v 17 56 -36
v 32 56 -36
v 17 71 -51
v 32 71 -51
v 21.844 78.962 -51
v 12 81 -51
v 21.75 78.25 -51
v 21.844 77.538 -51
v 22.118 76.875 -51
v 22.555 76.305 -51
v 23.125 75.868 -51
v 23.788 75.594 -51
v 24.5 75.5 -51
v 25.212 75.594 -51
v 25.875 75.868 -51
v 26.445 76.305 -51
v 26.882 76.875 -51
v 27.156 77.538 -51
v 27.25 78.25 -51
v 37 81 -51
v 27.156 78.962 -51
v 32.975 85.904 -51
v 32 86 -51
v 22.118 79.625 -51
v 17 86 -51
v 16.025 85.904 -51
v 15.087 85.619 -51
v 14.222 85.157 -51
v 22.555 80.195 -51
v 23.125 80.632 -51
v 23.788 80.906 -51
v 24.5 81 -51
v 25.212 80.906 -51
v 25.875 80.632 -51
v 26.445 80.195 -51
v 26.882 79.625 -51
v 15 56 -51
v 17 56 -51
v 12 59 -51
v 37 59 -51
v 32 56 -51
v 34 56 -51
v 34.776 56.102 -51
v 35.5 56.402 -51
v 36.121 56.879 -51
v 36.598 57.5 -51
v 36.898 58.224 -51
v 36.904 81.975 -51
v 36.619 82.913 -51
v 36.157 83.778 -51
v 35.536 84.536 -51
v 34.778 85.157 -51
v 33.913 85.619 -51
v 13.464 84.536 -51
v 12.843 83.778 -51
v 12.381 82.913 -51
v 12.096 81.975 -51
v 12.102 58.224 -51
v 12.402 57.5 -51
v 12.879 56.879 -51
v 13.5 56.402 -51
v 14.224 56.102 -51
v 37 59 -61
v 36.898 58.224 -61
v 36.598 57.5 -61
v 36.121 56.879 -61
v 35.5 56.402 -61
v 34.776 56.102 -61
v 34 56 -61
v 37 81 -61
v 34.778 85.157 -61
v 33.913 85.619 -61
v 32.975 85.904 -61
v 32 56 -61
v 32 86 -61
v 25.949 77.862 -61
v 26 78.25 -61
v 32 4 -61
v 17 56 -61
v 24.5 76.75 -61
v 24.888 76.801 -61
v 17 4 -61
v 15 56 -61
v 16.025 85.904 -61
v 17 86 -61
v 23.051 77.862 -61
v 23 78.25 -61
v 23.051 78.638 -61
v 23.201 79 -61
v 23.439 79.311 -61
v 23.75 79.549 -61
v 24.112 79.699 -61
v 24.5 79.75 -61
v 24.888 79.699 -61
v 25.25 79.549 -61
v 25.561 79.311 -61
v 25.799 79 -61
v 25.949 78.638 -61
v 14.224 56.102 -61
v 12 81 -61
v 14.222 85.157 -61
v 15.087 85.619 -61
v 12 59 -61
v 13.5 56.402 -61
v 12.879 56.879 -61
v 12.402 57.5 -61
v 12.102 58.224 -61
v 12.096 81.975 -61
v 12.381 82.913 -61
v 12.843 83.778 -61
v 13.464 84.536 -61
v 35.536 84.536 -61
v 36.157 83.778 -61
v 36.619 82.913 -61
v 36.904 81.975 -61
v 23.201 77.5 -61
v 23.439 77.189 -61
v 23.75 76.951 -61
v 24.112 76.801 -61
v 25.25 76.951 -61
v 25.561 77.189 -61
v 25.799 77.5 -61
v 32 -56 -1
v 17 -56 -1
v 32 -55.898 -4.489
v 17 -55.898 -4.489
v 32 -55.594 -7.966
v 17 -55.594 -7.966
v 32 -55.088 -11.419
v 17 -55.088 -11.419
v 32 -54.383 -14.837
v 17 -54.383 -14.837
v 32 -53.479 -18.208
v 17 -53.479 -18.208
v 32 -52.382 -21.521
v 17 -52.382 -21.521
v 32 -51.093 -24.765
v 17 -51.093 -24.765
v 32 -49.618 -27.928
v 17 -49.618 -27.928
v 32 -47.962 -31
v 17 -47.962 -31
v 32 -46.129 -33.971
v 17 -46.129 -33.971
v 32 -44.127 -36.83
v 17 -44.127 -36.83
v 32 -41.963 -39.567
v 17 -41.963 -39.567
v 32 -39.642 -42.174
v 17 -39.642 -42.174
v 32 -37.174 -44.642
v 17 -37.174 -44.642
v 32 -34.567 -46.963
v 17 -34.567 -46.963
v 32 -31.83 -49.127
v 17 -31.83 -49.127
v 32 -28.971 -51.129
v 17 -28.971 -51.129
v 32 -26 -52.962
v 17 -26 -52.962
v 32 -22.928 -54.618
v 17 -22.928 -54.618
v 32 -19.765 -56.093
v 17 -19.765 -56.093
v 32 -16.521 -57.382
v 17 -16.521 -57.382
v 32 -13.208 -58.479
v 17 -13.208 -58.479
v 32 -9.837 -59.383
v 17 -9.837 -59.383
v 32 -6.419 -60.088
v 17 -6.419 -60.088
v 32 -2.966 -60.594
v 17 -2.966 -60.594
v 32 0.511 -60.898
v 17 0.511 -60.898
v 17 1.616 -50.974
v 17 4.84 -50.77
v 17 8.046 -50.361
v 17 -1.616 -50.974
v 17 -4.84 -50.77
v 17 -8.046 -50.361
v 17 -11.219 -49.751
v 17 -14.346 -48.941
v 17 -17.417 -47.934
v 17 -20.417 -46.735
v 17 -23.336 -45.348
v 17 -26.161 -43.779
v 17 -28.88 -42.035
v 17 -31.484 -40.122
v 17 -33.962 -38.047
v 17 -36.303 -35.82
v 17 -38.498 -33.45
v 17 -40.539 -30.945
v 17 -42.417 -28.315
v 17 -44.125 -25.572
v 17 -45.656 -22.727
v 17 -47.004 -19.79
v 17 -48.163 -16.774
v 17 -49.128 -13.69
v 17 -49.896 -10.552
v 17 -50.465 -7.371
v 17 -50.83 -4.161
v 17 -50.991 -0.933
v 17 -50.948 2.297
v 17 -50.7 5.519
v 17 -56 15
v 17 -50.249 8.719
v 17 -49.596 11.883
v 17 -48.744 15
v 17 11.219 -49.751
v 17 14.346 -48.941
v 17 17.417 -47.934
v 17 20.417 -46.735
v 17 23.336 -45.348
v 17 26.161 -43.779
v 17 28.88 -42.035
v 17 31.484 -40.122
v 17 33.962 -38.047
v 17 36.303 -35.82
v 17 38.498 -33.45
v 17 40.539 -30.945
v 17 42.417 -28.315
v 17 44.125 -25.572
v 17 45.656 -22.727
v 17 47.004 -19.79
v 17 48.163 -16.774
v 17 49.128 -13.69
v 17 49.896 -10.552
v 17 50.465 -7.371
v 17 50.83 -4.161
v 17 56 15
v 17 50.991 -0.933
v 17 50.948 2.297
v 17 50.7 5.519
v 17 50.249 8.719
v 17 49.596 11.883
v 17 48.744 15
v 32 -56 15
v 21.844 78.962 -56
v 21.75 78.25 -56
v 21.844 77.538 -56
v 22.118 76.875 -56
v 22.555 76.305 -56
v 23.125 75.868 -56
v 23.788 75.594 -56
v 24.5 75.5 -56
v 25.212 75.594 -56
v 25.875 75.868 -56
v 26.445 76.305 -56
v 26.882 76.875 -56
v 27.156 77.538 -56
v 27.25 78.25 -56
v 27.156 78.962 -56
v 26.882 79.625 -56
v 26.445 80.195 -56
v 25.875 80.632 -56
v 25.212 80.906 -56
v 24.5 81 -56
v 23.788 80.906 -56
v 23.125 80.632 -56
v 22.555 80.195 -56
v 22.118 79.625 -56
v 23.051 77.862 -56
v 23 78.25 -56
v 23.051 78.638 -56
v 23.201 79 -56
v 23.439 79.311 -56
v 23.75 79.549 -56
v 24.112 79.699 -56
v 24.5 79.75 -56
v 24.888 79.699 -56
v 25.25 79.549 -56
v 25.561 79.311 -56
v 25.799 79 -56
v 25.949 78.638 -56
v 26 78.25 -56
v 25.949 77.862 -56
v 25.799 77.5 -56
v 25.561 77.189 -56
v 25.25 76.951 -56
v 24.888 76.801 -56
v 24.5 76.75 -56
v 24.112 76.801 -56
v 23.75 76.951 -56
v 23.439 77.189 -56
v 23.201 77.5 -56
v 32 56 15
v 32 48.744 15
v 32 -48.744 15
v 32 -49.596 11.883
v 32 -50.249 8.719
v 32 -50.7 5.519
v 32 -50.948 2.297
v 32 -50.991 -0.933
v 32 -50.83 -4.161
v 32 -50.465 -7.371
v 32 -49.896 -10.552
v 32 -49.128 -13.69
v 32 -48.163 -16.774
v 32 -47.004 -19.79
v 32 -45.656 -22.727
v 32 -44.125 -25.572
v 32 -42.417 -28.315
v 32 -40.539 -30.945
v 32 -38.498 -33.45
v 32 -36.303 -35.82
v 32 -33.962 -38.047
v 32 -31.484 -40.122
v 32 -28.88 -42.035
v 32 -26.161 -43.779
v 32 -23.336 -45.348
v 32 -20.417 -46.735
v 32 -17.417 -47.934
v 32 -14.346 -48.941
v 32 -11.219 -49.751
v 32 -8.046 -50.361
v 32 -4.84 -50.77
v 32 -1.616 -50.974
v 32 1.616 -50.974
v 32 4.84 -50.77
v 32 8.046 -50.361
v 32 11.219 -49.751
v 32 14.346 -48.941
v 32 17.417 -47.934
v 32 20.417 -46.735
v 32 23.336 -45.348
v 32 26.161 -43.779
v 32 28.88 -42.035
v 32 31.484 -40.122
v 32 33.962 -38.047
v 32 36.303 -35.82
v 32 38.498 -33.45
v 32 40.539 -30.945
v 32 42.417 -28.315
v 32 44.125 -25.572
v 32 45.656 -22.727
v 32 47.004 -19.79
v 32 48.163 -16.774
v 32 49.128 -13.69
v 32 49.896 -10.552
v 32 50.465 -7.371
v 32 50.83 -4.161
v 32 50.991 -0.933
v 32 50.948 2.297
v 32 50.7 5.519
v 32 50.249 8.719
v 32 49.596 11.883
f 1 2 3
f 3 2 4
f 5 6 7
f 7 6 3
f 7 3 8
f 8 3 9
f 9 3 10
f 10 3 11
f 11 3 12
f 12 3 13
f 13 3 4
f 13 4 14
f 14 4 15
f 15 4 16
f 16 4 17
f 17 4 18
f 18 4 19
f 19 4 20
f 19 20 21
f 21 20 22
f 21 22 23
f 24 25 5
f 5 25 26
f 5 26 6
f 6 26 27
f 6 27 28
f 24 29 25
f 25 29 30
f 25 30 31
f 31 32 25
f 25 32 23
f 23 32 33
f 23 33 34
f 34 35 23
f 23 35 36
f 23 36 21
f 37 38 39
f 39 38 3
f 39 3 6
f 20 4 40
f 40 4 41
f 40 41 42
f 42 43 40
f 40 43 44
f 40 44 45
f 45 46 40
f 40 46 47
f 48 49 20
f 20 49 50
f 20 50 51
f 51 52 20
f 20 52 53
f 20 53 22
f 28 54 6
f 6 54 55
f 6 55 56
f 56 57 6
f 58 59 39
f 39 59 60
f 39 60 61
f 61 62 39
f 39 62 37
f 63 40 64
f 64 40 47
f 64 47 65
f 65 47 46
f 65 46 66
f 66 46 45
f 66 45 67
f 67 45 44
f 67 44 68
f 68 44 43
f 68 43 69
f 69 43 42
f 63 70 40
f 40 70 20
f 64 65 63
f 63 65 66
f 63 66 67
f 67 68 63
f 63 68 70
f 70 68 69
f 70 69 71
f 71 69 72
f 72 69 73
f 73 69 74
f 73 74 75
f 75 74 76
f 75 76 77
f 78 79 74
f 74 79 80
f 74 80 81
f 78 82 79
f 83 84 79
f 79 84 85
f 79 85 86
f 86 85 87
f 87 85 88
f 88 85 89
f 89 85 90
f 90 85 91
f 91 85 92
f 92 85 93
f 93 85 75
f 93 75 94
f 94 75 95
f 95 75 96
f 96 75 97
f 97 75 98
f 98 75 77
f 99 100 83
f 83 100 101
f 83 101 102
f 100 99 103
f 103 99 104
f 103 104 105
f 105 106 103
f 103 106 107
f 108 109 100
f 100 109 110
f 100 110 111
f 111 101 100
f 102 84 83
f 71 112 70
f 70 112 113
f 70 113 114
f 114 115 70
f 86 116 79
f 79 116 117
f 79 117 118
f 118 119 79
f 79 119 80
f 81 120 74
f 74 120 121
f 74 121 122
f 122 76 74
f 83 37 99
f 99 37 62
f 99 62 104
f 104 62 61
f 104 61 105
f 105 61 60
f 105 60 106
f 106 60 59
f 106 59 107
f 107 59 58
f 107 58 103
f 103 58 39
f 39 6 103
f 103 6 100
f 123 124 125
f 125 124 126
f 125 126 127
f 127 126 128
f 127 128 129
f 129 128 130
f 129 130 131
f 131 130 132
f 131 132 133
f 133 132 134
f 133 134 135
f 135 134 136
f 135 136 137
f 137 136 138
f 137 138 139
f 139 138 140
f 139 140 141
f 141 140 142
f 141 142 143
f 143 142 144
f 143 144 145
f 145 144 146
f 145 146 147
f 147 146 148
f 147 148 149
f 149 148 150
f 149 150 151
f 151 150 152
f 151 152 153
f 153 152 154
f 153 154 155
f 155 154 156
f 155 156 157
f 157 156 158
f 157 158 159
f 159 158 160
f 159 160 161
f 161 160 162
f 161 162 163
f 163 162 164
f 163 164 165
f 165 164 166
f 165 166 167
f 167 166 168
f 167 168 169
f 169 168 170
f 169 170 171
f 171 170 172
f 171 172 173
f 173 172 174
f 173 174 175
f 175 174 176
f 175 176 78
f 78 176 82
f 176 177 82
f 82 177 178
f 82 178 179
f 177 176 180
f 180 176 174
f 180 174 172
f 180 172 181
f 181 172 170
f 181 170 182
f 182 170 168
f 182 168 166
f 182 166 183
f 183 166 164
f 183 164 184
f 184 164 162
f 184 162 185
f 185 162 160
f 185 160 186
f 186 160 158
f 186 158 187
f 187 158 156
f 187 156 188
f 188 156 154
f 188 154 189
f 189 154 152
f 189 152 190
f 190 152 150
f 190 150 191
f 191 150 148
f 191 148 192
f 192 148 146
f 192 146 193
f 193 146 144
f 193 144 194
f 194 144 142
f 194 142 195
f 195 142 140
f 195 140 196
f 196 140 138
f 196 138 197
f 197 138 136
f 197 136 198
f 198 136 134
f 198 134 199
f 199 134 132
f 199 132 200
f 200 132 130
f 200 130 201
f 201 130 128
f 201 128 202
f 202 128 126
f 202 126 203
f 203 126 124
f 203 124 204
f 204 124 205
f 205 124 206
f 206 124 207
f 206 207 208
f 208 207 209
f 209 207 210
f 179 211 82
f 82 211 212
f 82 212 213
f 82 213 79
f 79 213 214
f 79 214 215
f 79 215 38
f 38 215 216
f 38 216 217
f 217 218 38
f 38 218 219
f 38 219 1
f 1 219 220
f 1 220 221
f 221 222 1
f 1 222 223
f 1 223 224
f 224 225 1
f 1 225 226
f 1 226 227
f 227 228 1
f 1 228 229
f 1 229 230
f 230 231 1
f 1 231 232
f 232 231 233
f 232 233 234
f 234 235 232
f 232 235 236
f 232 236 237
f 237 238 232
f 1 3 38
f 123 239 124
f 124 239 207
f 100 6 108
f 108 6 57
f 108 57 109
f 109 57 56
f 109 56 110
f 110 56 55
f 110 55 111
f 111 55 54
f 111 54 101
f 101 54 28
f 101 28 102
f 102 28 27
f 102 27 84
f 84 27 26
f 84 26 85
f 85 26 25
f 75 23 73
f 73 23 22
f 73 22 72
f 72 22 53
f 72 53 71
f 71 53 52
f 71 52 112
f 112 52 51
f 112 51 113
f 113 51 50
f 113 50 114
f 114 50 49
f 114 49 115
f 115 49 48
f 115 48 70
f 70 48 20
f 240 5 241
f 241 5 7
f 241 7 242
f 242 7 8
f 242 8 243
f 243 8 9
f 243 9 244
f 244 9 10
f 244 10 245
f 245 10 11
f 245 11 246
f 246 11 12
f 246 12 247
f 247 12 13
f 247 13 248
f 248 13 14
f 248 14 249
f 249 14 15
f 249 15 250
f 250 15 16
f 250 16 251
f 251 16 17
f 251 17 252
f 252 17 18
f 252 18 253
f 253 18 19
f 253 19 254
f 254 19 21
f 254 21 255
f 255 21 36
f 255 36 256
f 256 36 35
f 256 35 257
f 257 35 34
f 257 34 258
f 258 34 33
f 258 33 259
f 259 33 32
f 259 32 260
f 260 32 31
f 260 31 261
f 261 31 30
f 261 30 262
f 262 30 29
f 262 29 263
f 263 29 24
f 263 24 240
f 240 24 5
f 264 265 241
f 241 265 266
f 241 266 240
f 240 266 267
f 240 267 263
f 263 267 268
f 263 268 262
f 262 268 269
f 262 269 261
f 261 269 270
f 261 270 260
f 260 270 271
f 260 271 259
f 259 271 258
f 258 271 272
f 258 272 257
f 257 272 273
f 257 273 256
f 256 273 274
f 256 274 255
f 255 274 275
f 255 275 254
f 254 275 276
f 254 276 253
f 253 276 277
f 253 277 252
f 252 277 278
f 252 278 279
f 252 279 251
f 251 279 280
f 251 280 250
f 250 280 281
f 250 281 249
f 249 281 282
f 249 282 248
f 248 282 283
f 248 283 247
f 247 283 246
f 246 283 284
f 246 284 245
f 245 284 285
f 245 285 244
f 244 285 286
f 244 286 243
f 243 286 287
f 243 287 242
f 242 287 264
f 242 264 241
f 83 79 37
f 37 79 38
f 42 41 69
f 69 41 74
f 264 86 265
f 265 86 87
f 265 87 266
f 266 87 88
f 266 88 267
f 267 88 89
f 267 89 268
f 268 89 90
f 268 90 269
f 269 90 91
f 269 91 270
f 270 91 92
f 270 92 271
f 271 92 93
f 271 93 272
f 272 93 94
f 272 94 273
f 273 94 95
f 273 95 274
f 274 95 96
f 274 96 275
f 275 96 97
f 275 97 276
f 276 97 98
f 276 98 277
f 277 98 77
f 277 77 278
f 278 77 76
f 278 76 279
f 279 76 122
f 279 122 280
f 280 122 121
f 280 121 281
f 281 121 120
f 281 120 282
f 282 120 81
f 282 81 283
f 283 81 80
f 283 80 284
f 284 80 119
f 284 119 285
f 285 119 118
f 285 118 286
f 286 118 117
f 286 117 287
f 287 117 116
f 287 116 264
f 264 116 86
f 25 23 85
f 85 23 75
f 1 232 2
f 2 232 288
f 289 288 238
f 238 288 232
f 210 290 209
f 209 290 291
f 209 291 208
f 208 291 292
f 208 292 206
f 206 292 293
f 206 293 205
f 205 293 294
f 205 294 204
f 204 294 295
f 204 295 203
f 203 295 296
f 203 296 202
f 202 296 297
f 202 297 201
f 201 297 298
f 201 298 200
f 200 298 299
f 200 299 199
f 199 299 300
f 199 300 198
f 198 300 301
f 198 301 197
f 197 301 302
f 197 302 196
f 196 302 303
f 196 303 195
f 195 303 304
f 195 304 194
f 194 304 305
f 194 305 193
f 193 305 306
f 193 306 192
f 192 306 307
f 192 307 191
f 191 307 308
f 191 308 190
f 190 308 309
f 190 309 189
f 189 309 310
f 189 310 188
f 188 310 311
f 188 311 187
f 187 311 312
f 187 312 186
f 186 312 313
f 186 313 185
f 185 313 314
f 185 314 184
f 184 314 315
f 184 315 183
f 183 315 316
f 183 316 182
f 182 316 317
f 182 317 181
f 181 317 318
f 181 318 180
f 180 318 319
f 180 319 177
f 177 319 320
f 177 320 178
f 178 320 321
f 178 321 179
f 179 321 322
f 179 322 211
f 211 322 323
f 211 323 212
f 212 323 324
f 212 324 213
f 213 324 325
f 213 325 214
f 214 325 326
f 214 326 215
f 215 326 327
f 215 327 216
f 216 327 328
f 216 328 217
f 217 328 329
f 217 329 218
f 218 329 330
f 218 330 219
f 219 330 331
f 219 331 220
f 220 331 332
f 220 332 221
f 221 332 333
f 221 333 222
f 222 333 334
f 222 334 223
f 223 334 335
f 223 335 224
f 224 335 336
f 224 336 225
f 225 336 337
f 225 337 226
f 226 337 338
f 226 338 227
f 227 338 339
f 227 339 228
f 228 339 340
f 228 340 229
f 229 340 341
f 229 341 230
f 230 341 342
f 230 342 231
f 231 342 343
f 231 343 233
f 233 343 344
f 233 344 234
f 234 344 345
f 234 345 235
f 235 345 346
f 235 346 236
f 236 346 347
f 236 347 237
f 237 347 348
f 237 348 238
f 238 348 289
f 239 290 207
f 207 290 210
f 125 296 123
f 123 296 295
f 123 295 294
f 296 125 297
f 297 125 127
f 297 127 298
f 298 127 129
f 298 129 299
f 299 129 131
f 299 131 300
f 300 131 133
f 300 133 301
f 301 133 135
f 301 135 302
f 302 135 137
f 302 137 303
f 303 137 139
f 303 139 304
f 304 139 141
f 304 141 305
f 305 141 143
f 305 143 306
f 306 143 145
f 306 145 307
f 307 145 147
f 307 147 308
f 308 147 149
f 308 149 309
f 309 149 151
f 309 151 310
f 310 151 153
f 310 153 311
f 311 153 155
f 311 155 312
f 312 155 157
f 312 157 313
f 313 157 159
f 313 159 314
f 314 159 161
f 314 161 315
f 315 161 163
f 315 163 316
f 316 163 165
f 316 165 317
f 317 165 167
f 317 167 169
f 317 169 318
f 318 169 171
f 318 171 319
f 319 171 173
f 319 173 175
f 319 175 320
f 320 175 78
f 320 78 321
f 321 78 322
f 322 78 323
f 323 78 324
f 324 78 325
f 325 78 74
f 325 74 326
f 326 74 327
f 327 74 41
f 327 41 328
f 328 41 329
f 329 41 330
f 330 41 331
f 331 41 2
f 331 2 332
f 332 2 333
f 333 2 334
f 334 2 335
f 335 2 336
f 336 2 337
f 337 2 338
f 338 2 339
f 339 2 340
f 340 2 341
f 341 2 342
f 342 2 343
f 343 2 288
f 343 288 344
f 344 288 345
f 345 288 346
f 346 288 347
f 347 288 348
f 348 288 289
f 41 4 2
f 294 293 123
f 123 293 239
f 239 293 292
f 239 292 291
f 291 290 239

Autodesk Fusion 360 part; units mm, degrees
sketch "Sketch1" plane through (0, 0, 0) normal (1, 0, 0) x (0, 1, 0)
  circle A0 centre (0, 0) radius 51
  dimension "d1" = 102
extrude "Extrude1" add sketch "Sketch1" along normal blind 32 makes body 1
sketch "Sketch2" plane through (32, 0, 0) normal (1, 0, 0) x (0, 1, 0)
  circle A0 centre (0, 0) radius 51
  circle A1 centre (0, 0) radius 51
  line L0 (-56, 0) -> (56, 0)
  line L1 (56, 0) -> (56, -61)
  line L2 (56, -61) -> (-56, -61)
  line L3 (-56, -61) -> (-56, 0)
  dimension "d5" = 5
  dimension "d6" = 5
  dimension "d7" = 10
extrude "Extrude2" add sketch "Sketch2" against normal blind 15 separate body contours A0 A1 L0 L1 L2 L3 makes body 2
combine "Combine1" operation cut target body 2 tool bodies 1
sketch "Sketch3" plane through (0, 0, 0) normal (0, 0, 1) x (1, 0, 0)
  line L0 (32, -56) -> (17, -56)
  line L1 (32, 56) -> (17, 56)
  line L2 (32, 51) -> (17, 51)
  line L3 (17, 56) -> (17, 51)
  line L4 (32, 51) -> (32, 56)
  line L5 (32, -56) -> (32, -51)
  line L6 (17, -51) -> (17, -56)
  line L7 (32, -51) -> (17, -51)
  line L8 (32, -51) -> (32, 51) construction
  line L9 (17, -51) -> (17, 51) construction
  line L10 (32, 0) -> (0, 0) construction
  line L11 (62, -12.5) -> (32, -12.5)
  line L12 (32, -12.5) -> (32, 12.5)
  line L13 (32, 12.5) -> (62, 12.5)
  line L14 (62, 12.5) -> (62, -12.5)
  line L15 (62, 0) -> (32, 0) construction
  circle A0 centre (54.25, 0) radius 2.75
  circle A1 centre (54.25, 0) radius 1.5
  line L16 (24.5, 56) -> (24.5, 51) construction
  line L17 (37, 56) -> (12, 56)
  line L18 (12, 56) -> (12, 86)
  line L19 (12, 86) -> (37, 86)
  line L20 (37, 86) -> (37, 56)
  line L21 (24.5, 56) -> (24.5, 86) construction
  circle A2 centre (24.5, 78.25) radius 2.75
  circle A3 centre (24.5, 78.25) radius 1.5
  point P0 (32, 56)
  point P1 (54.25, 0)
  dimension "d10" = 30
  dimension "d11" = 25
  dimension "d12" = 5.5
  dimension "d13" = 3
  dimension "d14" = 5
  dimension "d29" = 5.5
  dimension "d30" = 5
  dimension "d31" = 3
extrude "Extrude5" add sketch "Sketch3" along normal blind 10 from surface at -61 contours L1 L17 L18 L19 L20 | A2 bodies 2
extrude "Extrude6" cut sketch "Sketch3" against normal blind 5 from surface at -51 contours A2 bodies 2
move_face "OffsetFaces2" offset 15 2 faces at (27, -54.3333, 0) (27, 52.6667, 0) on bodies 2
fillet "Fillet4" radius 5 2 edges at (37, 86, -56) (12, 86, -56) on bodies 2
fillet "Fillet6" radius 60 1 edges at (24.5, -56, -61) on bodies 2
fillet "Fillet7" radius 3 2 edges at (12, 56, -56) (37, 56, -56) on bodies 2
chamfer "Chamfer2" distance 15 angle 45 1 edges at (24.5, 56, -51) on bodies 2
